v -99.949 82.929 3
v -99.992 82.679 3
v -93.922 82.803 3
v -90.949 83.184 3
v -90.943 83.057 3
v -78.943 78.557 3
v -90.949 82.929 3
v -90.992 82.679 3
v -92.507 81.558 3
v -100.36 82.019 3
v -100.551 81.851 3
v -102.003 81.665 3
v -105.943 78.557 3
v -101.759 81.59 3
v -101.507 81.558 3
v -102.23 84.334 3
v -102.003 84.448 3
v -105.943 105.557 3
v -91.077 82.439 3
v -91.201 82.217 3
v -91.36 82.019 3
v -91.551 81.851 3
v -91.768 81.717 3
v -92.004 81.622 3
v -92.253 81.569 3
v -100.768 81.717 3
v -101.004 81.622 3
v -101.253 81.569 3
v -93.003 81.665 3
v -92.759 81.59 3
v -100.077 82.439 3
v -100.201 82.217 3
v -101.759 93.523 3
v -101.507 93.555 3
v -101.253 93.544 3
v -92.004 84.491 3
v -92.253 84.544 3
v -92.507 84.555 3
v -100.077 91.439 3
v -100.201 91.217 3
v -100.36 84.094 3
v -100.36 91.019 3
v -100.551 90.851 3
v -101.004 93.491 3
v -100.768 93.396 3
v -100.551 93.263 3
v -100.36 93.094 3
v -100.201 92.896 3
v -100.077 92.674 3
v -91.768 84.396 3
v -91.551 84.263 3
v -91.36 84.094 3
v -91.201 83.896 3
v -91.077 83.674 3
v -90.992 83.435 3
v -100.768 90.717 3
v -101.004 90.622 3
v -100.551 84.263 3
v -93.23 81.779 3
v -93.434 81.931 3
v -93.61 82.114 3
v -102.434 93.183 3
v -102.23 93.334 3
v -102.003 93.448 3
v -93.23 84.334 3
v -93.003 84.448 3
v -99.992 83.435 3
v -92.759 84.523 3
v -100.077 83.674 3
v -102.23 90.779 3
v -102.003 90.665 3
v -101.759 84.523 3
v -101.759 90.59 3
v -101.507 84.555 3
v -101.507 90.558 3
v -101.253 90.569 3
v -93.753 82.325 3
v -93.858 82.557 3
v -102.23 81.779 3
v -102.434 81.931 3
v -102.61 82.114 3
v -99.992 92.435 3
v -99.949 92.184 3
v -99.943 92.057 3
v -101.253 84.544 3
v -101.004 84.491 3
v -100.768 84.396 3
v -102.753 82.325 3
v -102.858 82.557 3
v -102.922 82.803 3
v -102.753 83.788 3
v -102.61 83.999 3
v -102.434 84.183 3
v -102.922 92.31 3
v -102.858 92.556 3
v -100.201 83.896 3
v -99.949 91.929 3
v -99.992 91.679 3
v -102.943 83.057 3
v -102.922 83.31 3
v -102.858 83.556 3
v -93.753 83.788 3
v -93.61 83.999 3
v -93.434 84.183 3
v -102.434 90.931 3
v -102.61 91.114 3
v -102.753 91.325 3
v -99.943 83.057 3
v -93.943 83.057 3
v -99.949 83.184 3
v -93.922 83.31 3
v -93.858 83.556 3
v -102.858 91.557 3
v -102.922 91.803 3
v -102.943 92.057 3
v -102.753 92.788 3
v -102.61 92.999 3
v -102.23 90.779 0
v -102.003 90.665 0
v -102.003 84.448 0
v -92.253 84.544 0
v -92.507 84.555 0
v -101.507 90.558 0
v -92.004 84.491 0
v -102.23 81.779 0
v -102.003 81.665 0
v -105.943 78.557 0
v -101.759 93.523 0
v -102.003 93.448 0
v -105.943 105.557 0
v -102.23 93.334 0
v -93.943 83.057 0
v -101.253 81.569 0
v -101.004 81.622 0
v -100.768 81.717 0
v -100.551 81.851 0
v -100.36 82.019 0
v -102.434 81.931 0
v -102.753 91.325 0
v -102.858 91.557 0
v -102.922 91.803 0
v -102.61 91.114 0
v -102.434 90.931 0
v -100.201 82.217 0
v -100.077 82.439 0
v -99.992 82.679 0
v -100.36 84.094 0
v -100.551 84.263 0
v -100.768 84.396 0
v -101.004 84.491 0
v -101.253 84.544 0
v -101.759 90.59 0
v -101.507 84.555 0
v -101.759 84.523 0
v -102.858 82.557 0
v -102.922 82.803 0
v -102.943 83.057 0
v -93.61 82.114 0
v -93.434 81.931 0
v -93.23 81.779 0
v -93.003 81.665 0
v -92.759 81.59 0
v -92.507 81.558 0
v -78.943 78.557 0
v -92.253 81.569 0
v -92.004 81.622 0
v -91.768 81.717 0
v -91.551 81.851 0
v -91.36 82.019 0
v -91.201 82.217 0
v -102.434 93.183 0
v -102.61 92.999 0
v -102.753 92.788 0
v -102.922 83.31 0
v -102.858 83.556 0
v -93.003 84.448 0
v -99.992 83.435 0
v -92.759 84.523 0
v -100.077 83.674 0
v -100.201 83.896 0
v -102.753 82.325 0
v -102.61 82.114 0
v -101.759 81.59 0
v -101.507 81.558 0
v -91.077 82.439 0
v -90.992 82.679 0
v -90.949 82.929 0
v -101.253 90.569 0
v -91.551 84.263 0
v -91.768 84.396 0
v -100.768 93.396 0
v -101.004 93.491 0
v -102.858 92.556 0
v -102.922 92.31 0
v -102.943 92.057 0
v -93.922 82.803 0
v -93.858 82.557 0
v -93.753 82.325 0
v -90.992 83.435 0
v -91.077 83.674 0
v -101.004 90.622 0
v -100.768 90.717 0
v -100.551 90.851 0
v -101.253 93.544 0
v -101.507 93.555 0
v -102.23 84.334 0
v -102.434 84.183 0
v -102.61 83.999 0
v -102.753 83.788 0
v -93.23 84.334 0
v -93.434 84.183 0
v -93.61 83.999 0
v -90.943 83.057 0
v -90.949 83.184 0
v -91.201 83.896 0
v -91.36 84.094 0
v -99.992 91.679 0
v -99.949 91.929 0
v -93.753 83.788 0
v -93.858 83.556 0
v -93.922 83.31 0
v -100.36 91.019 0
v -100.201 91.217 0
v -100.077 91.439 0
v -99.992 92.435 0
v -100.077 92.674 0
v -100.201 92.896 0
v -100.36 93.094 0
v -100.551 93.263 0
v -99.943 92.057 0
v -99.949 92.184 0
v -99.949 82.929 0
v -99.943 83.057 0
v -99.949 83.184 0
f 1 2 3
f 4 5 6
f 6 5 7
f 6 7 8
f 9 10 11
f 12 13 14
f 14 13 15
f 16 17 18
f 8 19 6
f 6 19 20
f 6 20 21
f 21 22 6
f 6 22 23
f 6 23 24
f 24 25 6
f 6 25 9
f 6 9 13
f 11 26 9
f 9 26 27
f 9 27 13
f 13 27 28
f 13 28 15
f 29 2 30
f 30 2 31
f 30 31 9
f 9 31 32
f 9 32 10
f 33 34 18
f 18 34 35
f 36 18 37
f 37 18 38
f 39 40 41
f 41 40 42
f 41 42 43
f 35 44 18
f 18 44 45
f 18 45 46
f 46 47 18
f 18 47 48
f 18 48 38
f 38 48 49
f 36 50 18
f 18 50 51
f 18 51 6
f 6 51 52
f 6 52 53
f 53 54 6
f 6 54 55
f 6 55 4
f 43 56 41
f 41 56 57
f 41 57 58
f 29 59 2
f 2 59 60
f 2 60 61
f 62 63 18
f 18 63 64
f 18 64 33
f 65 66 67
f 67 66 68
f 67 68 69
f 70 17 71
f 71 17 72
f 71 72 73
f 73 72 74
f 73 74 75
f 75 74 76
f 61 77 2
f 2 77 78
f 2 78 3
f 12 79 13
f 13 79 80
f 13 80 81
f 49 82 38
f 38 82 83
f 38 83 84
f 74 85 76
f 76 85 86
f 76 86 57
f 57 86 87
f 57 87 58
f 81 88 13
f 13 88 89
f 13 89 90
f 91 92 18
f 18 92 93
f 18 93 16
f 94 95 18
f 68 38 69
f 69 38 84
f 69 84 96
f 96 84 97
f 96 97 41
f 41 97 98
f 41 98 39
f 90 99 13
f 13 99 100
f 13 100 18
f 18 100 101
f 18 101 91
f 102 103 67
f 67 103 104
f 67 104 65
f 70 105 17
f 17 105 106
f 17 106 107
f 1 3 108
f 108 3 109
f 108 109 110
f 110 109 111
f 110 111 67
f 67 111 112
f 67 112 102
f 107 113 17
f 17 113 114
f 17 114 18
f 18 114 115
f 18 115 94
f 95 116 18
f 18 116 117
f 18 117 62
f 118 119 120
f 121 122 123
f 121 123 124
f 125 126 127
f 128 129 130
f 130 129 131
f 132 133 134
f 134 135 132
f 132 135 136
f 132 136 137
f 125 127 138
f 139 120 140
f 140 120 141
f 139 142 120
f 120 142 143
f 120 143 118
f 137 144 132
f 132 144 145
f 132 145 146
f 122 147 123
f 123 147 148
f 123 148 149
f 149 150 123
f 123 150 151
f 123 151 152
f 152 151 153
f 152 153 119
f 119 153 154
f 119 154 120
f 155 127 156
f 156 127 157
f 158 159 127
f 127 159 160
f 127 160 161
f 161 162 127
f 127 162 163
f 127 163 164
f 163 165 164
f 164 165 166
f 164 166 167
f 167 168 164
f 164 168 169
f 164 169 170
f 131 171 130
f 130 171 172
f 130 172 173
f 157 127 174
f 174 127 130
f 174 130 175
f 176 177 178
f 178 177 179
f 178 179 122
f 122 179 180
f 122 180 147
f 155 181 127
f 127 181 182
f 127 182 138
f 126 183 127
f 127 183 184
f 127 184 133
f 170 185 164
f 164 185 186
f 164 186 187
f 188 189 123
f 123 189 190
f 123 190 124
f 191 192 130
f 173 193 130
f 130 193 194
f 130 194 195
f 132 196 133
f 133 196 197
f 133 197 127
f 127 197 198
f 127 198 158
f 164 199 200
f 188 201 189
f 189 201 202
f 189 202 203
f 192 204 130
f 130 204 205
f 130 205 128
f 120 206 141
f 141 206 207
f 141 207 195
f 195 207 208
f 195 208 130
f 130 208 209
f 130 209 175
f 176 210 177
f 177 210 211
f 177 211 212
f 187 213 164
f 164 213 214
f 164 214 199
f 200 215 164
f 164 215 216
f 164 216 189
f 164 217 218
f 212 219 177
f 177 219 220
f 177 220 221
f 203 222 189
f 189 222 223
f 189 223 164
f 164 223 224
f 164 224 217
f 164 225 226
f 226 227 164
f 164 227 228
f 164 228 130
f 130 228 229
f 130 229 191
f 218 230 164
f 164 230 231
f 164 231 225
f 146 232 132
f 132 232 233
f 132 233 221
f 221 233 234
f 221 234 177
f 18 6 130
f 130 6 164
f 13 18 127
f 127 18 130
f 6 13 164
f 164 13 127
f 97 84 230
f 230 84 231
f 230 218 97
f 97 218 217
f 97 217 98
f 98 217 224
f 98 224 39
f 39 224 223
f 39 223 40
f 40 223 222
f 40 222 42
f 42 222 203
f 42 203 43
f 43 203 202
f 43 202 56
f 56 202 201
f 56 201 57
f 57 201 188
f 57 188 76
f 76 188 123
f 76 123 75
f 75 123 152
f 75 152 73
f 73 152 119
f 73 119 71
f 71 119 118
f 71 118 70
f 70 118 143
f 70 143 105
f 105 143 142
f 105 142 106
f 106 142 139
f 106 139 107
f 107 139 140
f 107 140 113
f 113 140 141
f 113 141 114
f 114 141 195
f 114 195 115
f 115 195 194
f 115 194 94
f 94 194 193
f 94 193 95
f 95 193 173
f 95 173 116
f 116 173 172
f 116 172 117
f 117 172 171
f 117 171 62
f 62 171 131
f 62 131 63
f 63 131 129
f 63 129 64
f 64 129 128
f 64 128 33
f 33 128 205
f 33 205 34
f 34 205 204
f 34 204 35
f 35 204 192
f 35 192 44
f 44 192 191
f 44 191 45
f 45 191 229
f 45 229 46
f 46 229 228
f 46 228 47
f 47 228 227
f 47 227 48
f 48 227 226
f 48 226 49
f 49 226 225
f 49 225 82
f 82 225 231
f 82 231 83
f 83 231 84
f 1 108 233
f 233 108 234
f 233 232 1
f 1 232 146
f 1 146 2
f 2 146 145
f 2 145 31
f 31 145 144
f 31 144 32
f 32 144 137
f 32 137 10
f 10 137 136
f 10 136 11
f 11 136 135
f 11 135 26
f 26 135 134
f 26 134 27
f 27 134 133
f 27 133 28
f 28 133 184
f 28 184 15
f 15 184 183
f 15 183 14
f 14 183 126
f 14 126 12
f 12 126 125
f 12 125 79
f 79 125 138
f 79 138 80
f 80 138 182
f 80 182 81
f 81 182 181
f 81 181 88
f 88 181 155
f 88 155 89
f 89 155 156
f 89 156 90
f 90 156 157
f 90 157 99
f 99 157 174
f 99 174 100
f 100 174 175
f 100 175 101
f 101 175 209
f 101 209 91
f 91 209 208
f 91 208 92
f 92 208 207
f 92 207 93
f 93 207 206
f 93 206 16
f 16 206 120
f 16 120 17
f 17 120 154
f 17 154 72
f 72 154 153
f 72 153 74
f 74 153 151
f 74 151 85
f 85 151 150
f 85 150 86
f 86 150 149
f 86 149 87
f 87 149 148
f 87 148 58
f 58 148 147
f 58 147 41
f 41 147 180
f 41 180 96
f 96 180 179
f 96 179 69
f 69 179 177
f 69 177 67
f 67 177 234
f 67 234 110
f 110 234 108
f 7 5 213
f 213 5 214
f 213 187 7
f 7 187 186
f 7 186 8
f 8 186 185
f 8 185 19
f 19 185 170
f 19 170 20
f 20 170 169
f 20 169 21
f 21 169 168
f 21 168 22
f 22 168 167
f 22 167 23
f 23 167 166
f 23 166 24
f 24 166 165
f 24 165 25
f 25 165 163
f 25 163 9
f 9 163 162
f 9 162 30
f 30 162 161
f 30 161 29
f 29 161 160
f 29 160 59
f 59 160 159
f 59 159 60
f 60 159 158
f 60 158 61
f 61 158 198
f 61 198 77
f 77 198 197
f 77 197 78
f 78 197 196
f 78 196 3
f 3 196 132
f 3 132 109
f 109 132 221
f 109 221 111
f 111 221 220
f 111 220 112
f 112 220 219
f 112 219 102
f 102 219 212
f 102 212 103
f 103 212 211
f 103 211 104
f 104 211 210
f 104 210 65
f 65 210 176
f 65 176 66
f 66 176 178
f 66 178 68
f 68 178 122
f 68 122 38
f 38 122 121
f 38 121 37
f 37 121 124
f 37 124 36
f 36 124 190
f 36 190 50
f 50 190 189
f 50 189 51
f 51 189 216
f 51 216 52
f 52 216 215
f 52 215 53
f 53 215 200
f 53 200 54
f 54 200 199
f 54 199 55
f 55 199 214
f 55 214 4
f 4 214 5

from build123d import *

# Parameters (mm, degrees)
MODEL_R                 = 1.5
SALIENTE_EXTRUIR1_DEPTH = 3


with BuildPart() as part:
    # Model → Saliente-Extruir1 (new body)
    with BuildSketch(Plane.XY):
        Polygon((-105.943383637, 105.556539338), (-105.943383637, 78.556539338), (-78.943383637, 78.556539338), align=None)
        with Locations((-101.443383637, 92.056539338)):
            Circle(MODEL_R, mode=Mode.SUBTRACT)
        with Locations((-101.443383637, 83.056539338)):
            Circle(MODEL_R, mode=Mode.SUBTRACT)
        with Locations((-92.443383637, 83.056539338)):
            Circle(MODEL_R, mode=Mode.SUBTRACT)
    extrude(amount=SALIENTE_EXTRUIR1_DEPTH)


solid = part.part
